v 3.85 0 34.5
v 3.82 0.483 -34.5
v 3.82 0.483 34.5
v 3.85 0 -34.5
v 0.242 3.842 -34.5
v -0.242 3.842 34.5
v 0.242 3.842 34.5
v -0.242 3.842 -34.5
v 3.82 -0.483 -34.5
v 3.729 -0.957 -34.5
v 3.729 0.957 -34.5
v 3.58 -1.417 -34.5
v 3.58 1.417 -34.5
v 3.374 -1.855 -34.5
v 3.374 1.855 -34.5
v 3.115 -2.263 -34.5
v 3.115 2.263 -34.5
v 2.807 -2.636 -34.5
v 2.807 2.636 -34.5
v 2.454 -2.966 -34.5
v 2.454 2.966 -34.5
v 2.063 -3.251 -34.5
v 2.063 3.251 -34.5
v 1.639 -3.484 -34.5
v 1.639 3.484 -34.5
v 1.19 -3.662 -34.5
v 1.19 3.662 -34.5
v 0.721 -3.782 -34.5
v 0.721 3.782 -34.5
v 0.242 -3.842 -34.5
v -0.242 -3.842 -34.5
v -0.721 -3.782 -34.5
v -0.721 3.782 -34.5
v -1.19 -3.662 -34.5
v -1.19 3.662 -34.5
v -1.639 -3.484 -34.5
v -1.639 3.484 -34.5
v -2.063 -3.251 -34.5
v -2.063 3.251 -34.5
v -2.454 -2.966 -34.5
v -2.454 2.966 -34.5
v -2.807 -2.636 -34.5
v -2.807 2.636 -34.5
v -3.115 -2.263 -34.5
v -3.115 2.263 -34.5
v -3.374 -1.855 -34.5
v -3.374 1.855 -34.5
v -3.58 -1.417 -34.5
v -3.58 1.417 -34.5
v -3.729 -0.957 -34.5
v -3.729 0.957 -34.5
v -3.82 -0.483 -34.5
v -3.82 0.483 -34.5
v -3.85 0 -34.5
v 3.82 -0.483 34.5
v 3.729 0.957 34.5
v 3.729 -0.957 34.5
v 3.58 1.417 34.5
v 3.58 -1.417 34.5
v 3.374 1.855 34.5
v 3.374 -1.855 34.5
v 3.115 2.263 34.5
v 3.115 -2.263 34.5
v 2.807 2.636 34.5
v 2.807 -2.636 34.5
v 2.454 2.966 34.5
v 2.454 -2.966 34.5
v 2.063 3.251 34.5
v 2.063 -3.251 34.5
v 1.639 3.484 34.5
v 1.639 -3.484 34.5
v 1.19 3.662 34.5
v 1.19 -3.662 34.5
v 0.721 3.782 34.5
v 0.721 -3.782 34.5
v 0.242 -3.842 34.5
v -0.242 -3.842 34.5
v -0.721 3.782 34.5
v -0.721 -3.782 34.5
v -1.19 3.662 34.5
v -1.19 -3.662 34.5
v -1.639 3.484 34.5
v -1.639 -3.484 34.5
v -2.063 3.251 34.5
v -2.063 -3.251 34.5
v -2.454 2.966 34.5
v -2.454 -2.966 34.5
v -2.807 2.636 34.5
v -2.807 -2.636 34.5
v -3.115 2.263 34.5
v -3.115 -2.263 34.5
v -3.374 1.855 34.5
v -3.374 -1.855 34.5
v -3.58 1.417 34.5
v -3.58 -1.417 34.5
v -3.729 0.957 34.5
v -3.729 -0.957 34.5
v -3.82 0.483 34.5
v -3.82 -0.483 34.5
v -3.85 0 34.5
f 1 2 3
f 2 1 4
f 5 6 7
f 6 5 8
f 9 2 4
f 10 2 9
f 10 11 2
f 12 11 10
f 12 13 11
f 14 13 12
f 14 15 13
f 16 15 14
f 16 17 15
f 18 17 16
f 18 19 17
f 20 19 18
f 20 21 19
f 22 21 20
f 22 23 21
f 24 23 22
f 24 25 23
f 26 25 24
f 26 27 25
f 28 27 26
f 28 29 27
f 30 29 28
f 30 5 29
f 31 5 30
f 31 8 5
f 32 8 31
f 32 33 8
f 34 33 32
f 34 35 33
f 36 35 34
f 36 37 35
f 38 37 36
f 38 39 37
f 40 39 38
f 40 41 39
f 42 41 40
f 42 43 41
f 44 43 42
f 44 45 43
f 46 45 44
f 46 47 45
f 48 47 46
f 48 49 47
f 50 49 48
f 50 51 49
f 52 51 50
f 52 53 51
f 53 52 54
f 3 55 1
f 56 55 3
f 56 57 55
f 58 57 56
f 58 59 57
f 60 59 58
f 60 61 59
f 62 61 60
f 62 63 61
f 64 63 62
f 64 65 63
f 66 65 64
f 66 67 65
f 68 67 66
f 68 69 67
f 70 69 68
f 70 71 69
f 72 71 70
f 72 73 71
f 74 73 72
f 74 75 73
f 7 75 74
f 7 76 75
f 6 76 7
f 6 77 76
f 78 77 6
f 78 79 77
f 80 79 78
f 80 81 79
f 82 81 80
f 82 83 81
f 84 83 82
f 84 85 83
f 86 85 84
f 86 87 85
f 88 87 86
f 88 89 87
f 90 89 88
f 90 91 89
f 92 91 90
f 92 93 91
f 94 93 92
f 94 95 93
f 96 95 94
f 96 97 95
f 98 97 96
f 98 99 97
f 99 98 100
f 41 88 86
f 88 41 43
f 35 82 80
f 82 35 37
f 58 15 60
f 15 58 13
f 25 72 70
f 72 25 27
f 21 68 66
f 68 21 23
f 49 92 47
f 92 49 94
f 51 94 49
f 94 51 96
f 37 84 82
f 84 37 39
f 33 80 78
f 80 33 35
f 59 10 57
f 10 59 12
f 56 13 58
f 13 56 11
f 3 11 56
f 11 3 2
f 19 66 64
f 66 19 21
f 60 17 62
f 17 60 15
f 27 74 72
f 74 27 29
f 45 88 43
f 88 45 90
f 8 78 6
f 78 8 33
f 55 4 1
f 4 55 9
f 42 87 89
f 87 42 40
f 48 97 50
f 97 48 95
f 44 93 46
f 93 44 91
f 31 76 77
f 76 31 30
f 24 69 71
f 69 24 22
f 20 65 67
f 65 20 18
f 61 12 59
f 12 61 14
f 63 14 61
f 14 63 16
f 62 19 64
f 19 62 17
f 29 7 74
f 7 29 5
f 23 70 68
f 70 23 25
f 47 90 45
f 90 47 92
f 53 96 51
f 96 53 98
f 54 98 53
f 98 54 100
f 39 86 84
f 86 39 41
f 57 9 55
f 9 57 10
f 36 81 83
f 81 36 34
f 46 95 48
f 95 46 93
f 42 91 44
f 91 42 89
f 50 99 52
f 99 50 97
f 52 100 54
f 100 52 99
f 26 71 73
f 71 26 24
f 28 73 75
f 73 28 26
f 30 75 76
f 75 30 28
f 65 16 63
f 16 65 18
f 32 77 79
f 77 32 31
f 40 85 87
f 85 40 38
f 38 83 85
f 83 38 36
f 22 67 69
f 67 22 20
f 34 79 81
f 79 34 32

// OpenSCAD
$fn = 50;


difference() {
	union() {
		translate(v = [0, 0, -34.5000000000]) {
			cylinder(h = 69, r = 3.8500000000);
		}
	}
	union() {
		translate(v = [0, 0, -100.0000000000]) {
			cylinder(h = 200, r = 0);
		}
	}
}
